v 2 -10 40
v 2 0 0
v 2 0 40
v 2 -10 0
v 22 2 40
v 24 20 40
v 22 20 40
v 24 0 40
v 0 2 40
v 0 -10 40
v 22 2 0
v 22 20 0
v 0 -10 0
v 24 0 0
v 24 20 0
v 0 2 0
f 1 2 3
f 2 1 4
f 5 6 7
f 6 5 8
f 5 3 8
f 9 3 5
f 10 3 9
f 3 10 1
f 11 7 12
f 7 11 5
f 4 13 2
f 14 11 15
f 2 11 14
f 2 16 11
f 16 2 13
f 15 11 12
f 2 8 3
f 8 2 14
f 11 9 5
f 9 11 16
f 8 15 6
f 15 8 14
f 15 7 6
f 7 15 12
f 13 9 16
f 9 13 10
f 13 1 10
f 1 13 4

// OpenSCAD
//--------------------------------------------------------------
// Name: led_switch_holder.
// Version: 0.9
// Purpose: Держатель выключателя подсветки в шкафу.
// Author: Evgeny Klepikov
// E-mail: klek07@ya.ru
//
// Created: 05.04.2018
// Updated: 05.04.2018
// Copyright: (c) 2018 WildFox24
// Licence: GPL v3
//--------------------------------------------------------------
translate([2,0,0]) cube([20, 2, 40]);
translate([22,0,0]) cube([2, 20, 40]);
translate([0,-10,0]) cube([2, 12, 40]);
